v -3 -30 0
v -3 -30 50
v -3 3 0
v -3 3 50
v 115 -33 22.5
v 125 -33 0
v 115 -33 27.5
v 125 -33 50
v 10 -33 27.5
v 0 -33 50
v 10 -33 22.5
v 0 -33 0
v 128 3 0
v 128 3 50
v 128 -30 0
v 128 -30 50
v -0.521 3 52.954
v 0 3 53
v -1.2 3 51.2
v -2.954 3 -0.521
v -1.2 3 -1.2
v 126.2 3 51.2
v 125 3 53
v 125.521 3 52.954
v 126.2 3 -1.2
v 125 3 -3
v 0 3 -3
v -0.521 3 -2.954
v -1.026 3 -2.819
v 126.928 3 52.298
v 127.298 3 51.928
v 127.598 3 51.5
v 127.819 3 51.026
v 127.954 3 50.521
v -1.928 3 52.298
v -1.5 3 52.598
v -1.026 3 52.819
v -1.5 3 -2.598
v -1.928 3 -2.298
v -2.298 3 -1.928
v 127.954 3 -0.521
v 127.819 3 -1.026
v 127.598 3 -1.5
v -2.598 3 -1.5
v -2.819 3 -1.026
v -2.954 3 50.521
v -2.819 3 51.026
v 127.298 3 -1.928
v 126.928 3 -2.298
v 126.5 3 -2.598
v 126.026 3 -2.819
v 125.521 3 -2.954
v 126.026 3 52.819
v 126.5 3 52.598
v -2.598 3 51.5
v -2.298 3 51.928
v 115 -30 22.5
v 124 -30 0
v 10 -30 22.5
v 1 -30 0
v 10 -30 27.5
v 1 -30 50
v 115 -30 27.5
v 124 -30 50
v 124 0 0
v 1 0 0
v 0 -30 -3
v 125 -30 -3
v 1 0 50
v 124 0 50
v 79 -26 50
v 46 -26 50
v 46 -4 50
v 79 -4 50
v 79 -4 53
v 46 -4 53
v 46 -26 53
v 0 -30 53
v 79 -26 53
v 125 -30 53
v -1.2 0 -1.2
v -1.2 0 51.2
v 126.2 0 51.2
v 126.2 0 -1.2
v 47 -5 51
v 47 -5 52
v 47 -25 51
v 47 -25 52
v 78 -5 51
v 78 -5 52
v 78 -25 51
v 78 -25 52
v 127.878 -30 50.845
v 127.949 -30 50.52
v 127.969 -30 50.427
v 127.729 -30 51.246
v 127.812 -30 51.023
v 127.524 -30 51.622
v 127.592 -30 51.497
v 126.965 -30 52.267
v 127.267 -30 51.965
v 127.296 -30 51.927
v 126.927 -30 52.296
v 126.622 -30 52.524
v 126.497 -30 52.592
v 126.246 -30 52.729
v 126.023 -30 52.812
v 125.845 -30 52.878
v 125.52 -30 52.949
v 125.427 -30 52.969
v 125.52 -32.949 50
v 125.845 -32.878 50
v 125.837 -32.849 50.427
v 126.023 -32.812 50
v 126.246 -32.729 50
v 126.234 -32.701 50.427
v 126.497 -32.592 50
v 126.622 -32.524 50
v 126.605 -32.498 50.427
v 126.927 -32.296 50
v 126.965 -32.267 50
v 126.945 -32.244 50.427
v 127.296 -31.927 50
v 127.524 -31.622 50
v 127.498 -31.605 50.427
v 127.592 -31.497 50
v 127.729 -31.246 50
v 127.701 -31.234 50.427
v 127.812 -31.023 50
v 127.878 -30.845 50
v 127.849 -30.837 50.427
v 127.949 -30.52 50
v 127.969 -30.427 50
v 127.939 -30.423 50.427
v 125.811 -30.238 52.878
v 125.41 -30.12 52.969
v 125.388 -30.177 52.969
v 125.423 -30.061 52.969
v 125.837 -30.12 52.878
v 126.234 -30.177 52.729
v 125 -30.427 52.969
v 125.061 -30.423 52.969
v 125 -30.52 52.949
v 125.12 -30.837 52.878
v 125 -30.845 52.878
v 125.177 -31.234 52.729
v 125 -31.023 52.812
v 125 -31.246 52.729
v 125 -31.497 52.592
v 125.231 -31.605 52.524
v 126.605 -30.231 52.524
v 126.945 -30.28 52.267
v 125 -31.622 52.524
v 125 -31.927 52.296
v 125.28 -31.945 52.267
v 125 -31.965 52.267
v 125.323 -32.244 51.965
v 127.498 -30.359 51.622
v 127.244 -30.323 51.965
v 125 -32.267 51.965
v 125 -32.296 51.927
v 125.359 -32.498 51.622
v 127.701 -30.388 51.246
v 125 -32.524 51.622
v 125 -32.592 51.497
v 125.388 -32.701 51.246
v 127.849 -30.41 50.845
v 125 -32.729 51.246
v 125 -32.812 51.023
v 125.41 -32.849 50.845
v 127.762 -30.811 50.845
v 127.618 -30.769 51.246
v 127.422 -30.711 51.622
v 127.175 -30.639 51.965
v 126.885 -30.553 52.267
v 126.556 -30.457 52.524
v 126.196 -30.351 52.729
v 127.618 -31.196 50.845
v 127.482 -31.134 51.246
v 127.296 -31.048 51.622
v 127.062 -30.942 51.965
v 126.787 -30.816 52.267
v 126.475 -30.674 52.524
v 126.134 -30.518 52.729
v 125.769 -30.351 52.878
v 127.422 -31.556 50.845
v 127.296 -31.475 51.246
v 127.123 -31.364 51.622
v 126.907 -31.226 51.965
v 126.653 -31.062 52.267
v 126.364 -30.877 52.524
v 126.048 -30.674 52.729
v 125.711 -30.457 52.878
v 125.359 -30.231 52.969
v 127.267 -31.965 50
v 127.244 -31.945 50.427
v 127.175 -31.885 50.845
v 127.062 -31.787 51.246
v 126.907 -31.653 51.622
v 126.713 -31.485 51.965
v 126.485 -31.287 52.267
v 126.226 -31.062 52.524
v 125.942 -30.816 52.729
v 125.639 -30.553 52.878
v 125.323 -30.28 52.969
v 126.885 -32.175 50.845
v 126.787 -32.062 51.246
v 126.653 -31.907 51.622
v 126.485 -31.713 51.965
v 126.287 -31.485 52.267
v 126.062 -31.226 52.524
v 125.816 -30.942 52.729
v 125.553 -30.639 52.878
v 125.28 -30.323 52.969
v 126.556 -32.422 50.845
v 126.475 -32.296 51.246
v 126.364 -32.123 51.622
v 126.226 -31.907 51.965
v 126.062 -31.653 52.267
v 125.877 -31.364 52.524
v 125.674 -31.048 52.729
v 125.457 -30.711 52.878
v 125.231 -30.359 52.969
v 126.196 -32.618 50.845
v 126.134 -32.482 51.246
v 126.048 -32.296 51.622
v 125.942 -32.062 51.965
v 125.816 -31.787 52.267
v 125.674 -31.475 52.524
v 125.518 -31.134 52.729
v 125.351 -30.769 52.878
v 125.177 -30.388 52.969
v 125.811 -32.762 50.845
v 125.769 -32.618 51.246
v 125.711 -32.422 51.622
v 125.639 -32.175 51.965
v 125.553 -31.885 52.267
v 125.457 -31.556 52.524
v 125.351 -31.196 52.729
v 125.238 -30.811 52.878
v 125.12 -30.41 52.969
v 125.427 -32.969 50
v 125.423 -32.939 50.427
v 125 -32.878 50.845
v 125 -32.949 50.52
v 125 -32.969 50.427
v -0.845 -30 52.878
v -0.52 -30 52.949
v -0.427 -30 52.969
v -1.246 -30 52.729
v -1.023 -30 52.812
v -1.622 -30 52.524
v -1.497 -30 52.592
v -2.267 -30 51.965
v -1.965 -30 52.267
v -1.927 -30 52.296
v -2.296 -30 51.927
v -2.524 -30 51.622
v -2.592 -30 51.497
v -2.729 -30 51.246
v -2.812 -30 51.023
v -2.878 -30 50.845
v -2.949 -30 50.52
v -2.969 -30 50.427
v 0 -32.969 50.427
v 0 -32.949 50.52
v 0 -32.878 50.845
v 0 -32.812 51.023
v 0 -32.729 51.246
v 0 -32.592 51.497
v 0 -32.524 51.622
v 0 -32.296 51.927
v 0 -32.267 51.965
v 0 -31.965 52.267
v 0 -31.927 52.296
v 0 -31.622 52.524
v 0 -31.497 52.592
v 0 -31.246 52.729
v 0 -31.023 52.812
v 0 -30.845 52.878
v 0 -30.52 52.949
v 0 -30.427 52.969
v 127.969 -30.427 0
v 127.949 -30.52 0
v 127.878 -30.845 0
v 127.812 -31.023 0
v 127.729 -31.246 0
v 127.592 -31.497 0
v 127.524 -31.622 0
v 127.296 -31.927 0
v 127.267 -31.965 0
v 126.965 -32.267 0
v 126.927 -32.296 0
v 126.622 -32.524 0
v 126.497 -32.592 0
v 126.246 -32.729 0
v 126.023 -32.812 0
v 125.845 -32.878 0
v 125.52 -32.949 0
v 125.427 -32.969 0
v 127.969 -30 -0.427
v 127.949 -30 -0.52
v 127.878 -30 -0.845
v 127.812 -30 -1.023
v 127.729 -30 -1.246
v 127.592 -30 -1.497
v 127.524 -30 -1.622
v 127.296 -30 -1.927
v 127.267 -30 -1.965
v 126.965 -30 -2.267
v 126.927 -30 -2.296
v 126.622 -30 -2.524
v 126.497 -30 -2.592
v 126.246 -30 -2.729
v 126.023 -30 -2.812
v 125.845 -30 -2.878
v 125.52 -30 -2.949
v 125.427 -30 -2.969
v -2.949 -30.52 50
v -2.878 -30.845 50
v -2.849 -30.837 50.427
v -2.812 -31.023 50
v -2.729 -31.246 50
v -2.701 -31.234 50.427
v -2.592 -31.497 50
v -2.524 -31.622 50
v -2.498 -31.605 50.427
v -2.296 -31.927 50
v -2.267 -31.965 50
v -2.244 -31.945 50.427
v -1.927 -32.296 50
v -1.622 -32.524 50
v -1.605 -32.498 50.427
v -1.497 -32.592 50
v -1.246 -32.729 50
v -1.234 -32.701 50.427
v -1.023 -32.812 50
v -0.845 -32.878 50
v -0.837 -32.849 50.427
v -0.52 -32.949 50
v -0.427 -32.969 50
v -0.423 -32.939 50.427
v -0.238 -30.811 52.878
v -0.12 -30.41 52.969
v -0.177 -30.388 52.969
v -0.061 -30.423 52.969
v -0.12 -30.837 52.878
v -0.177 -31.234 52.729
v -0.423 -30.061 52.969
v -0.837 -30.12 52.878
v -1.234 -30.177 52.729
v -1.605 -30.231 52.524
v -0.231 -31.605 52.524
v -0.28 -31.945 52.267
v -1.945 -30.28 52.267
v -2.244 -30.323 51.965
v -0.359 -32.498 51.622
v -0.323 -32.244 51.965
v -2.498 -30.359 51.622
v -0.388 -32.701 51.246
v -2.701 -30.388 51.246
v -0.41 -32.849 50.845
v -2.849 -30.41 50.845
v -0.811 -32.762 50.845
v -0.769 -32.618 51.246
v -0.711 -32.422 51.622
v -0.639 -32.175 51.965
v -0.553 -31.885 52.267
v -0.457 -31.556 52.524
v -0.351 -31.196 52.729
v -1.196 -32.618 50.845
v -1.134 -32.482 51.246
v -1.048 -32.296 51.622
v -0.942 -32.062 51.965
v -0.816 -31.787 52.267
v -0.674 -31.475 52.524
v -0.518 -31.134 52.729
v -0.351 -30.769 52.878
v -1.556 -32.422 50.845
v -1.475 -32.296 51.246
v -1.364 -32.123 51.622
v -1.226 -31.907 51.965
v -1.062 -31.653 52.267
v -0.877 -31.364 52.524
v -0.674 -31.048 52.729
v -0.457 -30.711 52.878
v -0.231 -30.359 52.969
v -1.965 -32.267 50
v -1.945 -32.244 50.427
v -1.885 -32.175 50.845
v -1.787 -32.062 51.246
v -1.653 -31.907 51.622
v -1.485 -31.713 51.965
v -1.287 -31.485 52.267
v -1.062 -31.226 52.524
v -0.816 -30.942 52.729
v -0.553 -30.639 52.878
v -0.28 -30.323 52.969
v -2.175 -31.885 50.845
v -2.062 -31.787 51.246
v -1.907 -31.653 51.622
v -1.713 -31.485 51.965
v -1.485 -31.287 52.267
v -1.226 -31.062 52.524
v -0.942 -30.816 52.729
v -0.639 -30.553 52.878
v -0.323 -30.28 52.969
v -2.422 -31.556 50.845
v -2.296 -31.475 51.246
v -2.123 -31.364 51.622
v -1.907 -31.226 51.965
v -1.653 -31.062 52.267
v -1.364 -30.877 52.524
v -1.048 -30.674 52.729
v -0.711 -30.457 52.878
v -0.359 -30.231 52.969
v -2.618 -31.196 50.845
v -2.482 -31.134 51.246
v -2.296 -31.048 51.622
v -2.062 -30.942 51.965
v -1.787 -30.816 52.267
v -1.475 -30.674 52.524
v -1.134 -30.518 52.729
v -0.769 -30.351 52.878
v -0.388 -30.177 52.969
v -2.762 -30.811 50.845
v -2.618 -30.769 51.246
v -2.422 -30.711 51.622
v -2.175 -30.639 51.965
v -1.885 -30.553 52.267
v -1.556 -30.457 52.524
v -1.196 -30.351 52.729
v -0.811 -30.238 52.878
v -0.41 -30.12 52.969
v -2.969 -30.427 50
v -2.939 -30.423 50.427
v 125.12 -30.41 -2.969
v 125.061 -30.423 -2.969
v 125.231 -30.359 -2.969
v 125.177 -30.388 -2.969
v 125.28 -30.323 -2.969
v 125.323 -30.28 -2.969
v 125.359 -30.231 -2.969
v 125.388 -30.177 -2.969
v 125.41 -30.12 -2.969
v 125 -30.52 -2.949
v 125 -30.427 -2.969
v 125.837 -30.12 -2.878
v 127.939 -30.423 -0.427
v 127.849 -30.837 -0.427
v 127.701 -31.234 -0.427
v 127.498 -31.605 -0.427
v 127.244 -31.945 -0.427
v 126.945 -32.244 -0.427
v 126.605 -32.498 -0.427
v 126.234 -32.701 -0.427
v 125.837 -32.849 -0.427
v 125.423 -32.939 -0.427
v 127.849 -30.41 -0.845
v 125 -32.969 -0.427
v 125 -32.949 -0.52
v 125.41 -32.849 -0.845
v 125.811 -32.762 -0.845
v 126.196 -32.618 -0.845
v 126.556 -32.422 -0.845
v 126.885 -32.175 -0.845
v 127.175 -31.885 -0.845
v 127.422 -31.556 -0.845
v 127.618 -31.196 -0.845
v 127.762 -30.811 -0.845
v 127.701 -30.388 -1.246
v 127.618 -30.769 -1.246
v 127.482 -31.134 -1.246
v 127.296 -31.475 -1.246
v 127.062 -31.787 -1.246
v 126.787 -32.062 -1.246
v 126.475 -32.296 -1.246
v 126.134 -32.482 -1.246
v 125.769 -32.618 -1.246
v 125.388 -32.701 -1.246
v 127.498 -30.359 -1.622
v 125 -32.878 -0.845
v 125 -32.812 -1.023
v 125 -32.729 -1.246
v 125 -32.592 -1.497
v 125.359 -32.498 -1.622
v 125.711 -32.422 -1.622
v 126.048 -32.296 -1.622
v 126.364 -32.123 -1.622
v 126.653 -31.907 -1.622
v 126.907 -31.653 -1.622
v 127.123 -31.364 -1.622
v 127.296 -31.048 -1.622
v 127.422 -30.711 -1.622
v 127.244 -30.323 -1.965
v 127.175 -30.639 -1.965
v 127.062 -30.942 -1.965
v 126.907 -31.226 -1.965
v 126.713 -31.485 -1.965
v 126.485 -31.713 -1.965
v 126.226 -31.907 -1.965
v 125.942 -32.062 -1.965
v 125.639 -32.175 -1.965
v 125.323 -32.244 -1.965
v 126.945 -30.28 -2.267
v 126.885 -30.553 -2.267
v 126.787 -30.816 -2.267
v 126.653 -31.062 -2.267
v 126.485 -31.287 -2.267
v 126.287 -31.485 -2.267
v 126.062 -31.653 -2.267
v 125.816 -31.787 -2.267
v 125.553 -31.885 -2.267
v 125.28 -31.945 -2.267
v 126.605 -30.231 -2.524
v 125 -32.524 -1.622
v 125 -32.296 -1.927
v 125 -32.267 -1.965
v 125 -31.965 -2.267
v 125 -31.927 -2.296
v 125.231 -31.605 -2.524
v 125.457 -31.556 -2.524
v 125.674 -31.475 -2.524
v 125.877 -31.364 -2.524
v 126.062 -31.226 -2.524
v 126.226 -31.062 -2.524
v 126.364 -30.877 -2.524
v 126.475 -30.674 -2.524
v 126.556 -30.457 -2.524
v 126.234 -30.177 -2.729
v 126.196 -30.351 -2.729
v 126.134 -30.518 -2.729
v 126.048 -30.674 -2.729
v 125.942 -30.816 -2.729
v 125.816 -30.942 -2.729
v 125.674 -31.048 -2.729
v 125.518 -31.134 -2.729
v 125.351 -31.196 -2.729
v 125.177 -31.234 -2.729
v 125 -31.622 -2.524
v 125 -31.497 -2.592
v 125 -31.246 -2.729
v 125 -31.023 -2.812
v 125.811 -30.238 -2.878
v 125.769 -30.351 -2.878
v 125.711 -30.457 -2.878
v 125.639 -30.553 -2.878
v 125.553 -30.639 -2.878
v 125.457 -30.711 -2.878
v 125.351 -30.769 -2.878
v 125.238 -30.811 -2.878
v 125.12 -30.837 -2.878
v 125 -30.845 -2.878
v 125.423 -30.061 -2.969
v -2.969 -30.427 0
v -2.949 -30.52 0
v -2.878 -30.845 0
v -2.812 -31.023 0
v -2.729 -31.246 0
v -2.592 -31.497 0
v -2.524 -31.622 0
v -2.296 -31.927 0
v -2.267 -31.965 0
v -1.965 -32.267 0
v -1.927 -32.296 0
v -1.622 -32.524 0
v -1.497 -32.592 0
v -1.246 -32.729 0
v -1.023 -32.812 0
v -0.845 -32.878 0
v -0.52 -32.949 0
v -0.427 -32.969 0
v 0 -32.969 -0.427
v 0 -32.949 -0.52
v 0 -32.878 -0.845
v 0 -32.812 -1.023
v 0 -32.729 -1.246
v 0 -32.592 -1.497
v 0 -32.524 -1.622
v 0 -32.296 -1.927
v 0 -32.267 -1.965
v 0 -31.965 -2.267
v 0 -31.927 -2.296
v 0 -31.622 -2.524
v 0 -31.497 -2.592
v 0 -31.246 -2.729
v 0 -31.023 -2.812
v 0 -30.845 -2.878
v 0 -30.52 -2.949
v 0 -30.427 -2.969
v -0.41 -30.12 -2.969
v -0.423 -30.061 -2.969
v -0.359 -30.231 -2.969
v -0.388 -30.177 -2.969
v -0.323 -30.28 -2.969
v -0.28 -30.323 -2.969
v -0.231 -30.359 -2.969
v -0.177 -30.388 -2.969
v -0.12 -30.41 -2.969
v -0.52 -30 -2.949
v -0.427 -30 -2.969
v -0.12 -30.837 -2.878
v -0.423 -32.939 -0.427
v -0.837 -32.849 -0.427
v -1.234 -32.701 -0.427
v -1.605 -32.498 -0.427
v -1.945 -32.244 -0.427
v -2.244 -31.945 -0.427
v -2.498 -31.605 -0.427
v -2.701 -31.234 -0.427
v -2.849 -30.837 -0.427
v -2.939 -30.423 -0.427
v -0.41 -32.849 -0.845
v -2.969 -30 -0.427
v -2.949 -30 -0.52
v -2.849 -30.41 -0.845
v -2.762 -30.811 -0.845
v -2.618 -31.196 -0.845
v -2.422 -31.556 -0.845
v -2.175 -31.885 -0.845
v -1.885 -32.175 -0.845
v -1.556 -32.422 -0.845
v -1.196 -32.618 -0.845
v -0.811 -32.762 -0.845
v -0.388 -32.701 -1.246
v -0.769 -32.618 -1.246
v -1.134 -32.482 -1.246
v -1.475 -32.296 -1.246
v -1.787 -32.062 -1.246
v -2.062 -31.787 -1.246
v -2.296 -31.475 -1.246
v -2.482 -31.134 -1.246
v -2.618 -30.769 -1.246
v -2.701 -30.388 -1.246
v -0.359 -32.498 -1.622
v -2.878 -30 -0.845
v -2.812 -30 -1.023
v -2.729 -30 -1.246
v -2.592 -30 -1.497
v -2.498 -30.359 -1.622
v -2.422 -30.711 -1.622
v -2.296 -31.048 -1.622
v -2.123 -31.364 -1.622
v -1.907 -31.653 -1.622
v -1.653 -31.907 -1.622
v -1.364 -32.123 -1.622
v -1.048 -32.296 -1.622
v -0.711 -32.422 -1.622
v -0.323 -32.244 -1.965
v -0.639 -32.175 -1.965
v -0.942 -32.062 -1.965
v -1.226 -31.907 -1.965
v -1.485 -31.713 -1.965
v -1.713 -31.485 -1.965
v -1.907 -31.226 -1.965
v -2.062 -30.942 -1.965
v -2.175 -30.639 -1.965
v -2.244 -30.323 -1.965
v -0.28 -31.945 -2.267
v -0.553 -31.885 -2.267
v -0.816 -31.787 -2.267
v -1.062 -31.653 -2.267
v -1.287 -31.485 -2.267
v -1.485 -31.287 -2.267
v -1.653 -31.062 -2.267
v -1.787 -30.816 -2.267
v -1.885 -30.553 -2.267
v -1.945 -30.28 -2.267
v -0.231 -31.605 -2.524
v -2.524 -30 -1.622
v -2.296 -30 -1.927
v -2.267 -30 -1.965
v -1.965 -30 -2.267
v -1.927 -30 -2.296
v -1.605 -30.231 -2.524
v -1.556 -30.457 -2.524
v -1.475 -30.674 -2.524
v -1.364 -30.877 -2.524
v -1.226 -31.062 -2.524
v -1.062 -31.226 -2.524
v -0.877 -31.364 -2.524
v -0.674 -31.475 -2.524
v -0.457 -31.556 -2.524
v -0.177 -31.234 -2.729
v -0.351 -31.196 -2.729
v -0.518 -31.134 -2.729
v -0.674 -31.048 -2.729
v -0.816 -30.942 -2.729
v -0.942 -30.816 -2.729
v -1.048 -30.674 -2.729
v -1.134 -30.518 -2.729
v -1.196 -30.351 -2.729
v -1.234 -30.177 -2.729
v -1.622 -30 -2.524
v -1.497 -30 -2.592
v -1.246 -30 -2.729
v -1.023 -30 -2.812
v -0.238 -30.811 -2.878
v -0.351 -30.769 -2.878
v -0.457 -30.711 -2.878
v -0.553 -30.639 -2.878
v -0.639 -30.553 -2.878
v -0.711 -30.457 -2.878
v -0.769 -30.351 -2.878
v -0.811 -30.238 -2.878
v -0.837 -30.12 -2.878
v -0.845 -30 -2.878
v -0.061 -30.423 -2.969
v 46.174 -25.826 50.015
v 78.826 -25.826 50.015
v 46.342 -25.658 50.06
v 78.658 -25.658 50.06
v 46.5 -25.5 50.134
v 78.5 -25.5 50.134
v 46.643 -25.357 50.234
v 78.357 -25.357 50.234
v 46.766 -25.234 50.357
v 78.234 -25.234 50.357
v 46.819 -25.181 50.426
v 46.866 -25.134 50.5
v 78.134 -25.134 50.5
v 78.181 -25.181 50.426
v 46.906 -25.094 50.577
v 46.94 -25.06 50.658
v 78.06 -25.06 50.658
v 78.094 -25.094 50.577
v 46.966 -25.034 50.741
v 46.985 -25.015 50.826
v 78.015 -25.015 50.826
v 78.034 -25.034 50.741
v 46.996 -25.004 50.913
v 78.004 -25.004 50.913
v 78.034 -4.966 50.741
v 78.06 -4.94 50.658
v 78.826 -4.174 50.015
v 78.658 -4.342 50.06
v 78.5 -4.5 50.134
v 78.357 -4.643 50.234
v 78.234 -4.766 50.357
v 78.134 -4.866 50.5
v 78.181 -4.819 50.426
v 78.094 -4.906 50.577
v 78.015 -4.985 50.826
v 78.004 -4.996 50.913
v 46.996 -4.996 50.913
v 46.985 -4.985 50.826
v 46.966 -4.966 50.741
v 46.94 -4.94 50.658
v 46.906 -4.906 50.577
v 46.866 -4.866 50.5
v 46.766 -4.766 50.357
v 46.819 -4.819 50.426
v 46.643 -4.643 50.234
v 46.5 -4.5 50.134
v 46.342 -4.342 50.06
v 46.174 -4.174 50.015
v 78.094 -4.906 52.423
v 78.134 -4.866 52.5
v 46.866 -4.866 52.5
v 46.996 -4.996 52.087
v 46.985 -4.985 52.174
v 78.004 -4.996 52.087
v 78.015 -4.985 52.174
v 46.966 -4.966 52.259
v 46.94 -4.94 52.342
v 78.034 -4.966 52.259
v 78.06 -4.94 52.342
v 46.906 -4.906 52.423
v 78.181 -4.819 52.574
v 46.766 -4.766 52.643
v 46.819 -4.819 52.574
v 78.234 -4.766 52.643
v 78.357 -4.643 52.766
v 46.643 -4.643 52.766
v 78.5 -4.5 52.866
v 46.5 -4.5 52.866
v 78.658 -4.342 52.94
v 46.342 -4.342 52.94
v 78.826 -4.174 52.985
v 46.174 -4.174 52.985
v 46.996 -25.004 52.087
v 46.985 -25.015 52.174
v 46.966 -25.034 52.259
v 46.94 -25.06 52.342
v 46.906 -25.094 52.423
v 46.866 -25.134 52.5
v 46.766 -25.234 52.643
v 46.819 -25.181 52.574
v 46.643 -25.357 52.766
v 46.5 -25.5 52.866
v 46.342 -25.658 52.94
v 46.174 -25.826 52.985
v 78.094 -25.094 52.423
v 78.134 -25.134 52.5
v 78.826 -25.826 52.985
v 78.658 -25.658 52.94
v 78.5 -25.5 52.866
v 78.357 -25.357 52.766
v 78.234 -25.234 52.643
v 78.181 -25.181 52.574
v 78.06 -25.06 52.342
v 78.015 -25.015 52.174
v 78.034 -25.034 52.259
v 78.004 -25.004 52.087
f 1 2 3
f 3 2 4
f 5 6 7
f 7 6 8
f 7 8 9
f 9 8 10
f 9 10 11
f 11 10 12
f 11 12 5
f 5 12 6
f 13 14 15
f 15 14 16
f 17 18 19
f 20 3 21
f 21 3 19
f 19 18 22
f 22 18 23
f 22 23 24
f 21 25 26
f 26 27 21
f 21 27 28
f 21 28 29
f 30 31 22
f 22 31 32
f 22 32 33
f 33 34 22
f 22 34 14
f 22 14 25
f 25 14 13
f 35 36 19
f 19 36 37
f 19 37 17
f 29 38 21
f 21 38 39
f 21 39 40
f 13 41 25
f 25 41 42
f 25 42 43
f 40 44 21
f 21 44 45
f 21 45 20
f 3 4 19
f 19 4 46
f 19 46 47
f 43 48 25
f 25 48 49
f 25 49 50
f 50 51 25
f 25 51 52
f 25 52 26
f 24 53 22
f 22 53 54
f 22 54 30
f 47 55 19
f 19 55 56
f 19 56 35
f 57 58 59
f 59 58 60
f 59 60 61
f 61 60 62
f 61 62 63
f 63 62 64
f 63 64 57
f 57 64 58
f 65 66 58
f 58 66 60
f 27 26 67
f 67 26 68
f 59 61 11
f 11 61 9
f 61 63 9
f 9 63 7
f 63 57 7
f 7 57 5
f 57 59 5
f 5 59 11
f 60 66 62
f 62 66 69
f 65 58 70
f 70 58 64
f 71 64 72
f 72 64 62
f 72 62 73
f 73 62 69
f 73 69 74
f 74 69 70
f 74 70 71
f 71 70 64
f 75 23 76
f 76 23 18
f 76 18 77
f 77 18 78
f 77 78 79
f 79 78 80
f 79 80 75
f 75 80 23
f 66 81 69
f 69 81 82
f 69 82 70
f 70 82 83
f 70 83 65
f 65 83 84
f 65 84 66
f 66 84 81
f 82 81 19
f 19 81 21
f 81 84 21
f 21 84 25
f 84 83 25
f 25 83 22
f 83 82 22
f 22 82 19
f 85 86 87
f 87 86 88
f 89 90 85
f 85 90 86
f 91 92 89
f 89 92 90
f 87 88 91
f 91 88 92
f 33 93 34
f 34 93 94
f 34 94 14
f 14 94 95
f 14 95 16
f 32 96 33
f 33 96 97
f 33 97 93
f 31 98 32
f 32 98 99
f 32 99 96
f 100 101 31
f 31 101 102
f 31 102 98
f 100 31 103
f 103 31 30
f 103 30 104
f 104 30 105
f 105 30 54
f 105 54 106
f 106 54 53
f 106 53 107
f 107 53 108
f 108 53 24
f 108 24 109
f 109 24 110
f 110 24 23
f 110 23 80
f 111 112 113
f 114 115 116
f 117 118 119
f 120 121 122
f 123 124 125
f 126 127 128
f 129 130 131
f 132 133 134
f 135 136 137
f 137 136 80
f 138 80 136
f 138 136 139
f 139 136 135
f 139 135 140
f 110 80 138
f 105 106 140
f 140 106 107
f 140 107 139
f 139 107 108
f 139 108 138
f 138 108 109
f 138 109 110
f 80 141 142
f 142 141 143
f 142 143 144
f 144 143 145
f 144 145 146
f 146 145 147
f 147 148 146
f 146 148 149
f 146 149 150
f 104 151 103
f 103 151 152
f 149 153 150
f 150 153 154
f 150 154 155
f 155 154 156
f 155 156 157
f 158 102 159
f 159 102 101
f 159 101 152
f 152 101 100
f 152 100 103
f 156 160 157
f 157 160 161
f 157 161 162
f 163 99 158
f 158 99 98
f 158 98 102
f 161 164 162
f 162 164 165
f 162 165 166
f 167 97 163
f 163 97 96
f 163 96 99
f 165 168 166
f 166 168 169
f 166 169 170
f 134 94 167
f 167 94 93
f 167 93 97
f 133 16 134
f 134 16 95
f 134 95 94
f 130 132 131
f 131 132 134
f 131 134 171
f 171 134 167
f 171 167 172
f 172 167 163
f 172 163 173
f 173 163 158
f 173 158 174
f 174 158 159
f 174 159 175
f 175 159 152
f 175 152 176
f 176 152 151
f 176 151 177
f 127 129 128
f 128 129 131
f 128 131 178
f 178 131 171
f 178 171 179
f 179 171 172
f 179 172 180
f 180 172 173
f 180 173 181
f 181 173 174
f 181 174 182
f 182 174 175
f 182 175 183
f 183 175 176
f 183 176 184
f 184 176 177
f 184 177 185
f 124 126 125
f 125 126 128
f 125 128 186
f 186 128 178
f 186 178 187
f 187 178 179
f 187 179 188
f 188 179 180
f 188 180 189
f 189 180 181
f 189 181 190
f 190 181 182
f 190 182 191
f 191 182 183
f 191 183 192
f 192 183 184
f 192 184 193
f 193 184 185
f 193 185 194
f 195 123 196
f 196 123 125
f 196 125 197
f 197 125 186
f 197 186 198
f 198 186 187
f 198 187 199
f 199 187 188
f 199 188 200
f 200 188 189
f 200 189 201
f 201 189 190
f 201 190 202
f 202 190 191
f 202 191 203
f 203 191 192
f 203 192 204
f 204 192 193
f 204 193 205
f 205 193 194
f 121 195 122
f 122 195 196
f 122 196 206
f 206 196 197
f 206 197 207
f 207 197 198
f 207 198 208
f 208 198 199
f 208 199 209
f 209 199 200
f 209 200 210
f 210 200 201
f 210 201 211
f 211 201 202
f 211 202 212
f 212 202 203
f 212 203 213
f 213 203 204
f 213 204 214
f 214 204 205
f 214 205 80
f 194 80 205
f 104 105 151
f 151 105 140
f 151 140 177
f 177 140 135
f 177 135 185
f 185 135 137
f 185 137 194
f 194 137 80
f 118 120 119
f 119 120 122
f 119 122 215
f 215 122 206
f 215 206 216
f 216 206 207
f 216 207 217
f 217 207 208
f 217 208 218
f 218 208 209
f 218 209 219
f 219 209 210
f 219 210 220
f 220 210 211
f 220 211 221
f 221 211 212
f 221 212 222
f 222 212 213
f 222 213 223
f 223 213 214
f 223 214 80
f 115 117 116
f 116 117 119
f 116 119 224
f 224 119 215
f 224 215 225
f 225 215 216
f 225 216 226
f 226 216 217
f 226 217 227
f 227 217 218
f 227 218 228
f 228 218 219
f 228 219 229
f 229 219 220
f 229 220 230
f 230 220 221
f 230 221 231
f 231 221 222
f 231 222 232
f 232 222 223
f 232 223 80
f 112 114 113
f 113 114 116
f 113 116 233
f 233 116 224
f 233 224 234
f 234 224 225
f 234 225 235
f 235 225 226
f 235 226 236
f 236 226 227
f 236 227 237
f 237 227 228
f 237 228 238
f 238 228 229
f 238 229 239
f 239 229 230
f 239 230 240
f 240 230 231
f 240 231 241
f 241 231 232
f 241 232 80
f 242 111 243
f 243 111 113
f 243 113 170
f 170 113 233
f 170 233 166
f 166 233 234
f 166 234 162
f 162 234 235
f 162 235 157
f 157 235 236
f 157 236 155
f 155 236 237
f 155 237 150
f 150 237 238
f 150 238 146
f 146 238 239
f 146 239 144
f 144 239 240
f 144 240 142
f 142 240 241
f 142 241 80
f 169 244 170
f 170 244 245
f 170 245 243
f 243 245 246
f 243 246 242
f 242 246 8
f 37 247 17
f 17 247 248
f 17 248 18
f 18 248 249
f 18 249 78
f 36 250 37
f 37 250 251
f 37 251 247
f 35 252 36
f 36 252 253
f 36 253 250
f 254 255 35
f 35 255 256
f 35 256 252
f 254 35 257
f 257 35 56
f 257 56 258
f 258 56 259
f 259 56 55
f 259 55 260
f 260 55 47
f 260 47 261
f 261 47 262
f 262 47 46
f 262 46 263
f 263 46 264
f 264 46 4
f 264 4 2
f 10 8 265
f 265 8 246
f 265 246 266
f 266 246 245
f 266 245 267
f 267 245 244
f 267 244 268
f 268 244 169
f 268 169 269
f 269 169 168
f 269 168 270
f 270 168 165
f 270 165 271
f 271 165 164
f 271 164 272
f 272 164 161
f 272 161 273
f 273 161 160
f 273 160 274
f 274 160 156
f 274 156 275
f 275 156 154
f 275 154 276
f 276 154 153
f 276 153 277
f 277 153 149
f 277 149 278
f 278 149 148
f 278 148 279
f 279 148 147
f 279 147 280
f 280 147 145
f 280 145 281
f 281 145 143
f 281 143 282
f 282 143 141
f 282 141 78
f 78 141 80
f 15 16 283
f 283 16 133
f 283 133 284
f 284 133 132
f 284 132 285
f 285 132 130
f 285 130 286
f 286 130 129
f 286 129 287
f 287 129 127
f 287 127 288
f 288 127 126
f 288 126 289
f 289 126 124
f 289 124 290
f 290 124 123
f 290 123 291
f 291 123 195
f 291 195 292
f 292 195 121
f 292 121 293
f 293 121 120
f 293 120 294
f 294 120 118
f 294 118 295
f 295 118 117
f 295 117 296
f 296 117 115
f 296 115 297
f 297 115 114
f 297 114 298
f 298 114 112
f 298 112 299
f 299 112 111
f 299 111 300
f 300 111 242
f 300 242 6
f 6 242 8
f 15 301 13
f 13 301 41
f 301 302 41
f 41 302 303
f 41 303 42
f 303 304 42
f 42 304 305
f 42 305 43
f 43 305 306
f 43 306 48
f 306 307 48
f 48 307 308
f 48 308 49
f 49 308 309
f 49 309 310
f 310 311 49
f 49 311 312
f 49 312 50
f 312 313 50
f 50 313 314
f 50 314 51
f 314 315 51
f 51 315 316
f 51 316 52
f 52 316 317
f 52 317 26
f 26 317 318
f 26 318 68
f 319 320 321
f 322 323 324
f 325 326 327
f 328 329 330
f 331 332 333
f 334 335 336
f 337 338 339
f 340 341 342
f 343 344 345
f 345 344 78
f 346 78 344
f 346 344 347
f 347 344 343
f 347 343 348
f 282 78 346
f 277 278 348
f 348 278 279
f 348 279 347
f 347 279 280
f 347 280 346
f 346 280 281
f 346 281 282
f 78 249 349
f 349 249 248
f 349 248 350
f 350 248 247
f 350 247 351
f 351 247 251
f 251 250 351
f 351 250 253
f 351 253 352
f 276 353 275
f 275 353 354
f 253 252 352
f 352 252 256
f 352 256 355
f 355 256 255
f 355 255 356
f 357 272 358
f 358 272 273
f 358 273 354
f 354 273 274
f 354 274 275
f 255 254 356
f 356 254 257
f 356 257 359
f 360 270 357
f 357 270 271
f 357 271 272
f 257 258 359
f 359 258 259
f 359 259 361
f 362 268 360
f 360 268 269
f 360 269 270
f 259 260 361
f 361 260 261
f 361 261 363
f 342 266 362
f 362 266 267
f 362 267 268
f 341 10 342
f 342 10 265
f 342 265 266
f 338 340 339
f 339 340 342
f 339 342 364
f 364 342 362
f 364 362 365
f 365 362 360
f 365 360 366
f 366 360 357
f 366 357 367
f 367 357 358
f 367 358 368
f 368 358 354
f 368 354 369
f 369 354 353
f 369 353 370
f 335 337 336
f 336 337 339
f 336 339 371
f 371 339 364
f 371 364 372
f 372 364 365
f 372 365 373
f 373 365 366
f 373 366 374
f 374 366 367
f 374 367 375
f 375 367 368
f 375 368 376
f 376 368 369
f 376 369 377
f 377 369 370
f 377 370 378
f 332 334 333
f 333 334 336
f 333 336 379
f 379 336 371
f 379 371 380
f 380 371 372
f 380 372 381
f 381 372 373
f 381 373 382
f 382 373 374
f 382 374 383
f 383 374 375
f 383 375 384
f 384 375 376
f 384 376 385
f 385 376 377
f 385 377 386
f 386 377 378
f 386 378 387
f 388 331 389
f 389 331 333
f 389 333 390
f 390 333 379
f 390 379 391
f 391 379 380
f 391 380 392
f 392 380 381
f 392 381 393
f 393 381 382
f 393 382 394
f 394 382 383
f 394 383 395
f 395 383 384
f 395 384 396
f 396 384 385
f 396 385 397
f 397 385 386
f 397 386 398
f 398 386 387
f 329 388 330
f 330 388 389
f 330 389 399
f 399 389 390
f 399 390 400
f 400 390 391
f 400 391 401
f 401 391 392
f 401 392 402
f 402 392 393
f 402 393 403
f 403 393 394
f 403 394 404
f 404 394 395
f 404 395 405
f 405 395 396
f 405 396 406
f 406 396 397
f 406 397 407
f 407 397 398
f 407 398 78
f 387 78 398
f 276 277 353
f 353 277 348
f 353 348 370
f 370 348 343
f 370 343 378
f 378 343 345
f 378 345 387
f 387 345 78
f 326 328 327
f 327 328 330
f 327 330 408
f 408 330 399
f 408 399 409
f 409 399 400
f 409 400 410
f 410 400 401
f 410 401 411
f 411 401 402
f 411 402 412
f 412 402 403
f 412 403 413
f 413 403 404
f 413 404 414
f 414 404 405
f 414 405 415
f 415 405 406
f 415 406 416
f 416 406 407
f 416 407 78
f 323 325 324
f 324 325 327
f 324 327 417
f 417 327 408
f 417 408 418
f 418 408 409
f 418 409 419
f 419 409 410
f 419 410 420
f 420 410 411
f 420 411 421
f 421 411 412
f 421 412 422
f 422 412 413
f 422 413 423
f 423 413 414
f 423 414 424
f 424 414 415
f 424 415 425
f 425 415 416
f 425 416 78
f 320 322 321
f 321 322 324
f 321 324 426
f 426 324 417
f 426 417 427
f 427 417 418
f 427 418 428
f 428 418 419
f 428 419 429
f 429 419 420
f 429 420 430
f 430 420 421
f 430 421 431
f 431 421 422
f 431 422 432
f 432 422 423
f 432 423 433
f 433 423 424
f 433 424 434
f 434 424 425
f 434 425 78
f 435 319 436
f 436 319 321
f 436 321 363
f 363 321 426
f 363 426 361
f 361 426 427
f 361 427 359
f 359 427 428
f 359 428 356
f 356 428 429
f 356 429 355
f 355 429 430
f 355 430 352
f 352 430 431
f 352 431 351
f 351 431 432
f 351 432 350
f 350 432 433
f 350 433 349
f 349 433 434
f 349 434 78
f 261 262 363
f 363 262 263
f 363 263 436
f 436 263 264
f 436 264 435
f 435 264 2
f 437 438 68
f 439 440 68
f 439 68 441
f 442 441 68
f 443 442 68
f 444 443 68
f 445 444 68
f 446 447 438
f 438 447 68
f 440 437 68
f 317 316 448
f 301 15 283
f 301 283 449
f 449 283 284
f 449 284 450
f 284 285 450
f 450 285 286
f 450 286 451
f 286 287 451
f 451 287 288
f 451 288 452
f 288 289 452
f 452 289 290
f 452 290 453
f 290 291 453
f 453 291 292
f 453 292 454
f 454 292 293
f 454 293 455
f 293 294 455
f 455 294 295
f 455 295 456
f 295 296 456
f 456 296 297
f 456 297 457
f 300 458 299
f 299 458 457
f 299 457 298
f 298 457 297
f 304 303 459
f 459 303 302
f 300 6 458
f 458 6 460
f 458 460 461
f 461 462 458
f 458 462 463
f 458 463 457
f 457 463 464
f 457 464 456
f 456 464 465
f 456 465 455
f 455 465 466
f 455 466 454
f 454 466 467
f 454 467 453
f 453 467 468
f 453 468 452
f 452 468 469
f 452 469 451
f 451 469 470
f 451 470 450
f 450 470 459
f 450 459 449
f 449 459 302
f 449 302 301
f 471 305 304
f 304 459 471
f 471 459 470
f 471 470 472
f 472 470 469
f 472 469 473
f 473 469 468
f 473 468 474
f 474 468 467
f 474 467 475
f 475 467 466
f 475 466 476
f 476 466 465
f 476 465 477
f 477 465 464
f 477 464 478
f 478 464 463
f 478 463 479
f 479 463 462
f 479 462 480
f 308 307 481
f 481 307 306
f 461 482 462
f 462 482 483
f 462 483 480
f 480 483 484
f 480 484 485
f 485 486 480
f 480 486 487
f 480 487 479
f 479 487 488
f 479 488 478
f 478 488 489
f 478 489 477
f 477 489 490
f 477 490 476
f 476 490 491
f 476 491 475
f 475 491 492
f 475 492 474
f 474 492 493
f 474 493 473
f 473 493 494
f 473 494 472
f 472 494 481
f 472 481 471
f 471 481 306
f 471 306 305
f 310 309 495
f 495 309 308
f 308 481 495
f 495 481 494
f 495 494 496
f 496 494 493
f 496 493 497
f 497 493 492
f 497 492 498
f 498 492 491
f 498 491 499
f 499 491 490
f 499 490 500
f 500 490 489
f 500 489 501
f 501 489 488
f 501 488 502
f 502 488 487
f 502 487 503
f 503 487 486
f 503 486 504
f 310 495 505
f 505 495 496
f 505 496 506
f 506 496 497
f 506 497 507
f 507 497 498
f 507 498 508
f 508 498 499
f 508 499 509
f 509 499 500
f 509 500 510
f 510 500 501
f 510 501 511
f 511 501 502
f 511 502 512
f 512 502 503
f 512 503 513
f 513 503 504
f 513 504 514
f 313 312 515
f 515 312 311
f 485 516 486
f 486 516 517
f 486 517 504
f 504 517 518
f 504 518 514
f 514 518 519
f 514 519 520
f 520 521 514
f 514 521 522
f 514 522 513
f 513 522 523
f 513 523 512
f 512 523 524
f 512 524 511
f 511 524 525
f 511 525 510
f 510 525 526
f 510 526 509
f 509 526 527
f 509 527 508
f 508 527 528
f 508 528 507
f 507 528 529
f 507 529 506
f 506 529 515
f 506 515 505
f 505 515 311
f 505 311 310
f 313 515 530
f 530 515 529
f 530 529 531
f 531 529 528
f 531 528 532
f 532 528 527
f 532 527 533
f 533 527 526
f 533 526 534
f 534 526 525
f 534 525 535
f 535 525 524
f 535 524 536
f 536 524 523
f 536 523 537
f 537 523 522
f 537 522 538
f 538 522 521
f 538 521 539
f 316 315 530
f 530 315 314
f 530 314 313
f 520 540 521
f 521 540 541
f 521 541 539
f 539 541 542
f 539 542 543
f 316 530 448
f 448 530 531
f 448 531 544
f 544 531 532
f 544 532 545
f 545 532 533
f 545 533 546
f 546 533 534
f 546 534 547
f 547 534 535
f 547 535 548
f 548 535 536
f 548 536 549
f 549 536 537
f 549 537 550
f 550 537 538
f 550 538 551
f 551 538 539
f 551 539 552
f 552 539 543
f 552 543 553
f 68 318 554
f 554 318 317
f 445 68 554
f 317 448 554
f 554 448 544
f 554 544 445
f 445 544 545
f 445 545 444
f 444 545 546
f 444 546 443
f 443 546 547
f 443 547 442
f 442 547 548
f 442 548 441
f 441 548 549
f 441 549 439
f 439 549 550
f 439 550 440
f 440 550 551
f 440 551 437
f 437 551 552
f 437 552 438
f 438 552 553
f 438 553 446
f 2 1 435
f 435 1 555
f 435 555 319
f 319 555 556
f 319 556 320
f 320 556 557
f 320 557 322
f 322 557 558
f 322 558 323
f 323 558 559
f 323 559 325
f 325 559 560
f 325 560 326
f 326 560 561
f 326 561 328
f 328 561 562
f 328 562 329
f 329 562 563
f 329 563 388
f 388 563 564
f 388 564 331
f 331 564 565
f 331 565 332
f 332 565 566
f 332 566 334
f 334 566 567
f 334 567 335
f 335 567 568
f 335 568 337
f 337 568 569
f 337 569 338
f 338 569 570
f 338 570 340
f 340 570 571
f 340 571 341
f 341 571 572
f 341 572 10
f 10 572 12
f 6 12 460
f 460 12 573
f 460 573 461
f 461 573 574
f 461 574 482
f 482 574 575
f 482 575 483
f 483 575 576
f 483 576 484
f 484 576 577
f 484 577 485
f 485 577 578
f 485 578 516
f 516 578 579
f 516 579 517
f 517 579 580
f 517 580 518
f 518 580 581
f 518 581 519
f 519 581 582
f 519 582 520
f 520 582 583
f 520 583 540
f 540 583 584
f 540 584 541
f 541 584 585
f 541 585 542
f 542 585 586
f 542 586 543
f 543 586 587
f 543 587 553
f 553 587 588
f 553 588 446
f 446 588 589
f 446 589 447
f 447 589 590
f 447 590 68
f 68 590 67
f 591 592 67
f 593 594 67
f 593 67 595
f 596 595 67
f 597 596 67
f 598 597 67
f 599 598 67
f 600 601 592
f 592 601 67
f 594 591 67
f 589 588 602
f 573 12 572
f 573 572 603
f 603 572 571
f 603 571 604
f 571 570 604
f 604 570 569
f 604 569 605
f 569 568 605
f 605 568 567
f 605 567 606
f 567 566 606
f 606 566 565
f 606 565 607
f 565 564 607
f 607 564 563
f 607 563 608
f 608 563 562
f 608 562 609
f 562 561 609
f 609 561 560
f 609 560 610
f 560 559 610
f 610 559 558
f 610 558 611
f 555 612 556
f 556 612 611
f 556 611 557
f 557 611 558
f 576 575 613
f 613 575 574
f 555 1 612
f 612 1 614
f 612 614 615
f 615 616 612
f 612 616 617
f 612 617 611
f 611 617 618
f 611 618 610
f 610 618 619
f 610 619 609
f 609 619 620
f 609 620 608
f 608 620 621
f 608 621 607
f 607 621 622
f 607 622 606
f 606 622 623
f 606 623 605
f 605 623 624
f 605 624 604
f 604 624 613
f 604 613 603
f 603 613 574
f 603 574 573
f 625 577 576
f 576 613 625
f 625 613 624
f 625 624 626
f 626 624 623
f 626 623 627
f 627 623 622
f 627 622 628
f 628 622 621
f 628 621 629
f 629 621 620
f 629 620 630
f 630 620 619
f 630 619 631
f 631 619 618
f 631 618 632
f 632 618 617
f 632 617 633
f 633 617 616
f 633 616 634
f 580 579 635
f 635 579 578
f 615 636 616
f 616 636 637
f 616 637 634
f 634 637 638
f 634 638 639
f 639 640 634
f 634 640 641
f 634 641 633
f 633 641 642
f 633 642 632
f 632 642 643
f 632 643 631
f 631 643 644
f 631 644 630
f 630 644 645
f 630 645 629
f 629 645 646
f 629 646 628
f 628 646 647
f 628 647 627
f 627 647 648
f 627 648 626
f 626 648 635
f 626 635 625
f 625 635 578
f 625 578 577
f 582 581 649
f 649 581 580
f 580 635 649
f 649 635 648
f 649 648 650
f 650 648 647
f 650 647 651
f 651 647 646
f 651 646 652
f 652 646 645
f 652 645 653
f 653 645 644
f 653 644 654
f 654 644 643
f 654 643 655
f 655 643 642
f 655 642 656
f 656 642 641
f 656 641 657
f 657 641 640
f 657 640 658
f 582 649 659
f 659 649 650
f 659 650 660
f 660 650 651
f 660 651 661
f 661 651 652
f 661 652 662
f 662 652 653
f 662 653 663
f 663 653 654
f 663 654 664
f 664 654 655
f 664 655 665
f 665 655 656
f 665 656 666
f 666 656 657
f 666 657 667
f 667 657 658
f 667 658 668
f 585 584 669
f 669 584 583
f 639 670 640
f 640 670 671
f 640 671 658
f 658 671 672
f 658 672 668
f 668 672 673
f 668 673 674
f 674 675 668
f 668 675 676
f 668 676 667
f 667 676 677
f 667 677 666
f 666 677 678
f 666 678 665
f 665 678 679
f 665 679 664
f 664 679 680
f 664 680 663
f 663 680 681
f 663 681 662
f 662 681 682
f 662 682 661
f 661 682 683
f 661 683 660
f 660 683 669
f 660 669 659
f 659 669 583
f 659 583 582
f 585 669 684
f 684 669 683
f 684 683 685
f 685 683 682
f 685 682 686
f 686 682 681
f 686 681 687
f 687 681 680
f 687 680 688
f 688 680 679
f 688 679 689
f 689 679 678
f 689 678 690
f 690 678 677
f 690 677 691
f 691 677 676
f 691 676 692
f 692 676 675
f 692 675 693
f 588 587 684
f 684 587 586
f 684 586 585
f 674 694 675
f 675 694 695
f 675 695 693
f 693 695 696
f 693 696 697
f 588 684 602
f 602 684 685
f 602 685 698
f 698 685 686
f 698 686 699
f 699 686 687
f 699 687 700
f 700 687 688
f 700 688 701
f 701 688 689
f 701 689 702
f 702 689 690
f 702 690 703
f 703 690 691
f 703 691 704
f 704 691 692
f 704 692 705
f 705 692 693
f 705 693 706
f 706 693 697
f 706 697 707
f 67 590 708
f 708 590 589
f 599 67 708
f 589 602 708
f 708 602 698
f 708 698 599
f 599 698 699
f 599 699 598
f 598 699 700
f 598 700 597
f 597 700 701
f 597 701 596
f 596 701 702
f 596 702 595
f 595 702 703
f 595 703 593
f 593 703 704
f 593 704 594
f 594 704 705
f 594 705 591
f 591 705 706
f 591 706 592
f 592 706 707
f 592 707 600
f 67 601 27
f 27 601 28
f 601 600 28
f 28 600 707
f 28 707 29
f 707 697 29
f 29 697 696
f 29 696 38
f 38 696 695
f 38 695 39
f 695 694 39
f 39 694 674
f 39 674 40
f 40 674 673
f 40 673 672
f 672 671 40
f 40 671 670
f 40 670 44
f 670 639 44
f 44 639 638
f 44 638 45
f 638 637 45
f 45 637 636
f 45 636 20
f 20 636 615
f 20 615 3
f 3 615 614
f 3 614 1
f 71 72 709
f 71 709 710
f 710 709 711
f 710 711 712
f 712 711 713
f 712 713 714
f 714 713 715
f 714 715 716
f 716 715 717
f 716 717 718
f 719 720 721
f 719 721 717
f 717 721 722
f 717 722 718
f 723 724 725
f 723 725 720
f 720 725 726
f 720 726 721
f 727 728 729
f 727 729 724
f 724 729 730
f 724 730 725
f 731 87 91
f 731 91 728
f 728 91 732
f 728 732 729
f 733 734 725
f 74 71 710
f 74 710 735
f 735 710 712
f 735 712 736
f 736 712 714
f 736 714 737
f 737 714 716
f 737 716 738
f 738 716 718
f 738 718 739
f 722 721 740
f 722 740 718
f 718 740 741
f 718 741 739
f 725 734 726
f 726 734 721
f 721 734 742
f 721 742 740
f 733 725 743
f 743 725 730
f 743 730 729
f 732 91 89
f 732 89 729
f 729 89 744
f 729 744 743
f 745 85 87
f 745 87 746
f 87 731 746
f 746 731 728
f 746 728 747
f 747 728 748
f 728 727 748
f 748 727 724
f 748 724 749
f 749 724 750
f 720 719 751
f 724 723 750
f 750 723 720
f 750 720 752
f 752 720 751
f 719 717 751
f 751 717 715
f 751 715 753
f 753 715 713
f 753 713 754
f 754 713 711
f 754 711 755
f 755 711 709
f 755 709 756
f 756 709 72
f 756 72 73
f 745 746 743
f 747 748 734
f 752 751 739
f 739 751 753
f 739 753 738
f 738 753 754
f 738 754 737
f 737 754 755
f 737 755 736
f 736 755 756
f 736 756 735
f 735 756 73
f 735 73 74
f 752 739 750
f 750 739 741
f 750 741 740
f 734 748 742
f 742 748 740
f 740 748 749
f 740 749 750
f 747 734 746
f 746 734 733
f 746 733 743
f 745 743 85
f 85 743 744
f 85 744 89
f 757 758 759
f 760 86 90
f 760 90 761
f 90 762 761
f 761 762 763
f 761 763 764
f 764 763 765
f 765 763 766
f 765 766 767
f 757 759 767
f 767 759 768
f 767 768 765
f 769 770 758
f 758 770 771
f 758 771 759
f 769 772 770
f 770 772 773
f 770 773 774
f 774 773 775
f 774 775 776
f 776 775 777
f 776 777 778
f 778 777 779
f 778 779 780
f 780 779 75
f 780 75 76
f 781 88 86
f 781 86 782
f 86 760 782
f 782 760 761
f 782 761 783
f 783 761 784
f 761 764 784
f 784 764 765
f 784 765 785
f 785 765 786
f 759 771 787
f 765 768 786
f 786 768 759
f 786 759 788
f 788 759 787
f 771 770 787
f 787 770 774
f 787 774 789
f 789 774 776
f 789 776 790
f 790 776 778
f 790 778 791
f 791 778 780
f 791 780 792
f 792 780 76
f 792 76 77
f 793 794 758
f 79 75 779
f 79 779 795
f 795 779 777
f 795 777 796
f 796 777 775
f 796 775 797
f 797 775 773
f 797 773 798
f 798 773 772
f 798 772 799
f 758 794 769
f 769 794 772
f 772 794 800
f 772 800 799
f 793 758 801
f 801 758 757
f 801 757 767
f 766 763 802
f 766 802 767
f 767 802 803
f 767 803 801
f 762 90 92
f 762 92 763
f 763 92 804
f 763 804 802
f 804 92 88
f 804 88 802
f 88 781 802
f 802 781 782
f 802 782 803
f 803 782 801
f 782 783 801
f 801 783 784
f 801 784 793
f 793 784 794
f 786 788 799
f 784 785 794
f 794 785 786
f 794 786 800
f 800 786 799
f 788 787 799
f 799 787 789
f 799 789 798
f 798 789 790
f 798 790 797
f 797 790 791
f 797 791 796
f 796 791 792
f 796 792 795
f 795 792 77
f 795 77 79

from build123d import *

# Parameters (mm, degrees)
SKETCH_1_W          = 131
SKETCH_1_H          = 36
SKETCH_1_W_2        = 125
SKETCH_1_H_2        = 30
EXTRUDE_3_DEPTH     = 50
SKETCH_4_W          = 131
SKETCH_4_H          = 36
EXTRUDE_4_DEPTH     = 3
SKETCH_5_R          = 7.5
CUT_EXTRUDE_1_DEPTH = 3
CUT_EXTRUDE_2_DEPTH = 3
SKETCH_11_W         = 1
SKETCH_11_H         = 30
EXTRUDE_6_DEPTH     = 50
SKETCH_8_W          = 131
SKETCH_8_H          = 36
EXTRUDE_7_DEPTH     = 3
SKETCH_12_W         = 127.4
SKETCH_12_H         = 52.4
CUT_EXTRUDE_4_DEPTH = 3
CUT_EXTRUDE_5_DEPTH = 3
FILLET_5_R          = 3
FILLET_6_R          = 1


with BuildPart() as part:
    # 草图1 → 凸台-拉伸3 (new body)
    with BuildSketch(Plane.XY):
        with Locations((62.5, -15)):
            Rectangle(SKETCH_1_W, SKETCH_1_H)
        with Locations((62.5, -15)):
            Rectangle(SKETCH_1_W_2, SKETCH_1_H_2, mode=Mode.SUBTRACT)
    extrude(amount=EXTRUDE_3_DEPTH)

    # 草图4 → 凸台-拉伸4 (add)
    with BuildSketch(Plane(origin=(0, 0, 0), x_dir=(-1, 0, 0), z_dir=(0, 0, -1))):
        with Locations((-62.5, -15)):
            Rectangle(SKETCH_4_W, SKETCH_4_H)
    extrude(amount=EXTRUDE_4_DEPTH)

    # 草图5 → 切除-拉伸1 (cut)
    with BuildSketch(Plane(origin=(0, 3, 0), x_dir=(1, 0, 0), z_dir=(0, 1, 0))):
        with Locations(Location((17.5, -30, 0), (0, 0, 270))):
            Circle(SKETCH_5_R)
        with Locations(Location((47.5, -30, 0), (0, 0, 270))):
            Circle(SKETCH_5_R)
        with Locations(Location((77.5, -30, 0), (0, 0, 270))):
            Circle(SKETCH_5_R)
        with Locations(Location((107.5, -30, 0), (0, 0, 270))):
            Circle(SKETCH_5_R)
    extrude(amount=-CUT_EXTRUDE_1_DEPTH, mode=Mode.SUBTRACT)

    # 草图6 → 切除-拉伸2 (cut)
    with BuildSketch(Plane.XZ.offset(33)):
        Polygon((10, 25), (10, 27.5), (115, 27.5), (115, 25), (115, 22.5), (10, 22.5), align=None)
    extrude(amount=-CUT_EXTRUDE_2_DEPTH, mode=Mode.SUBTRACT)

    # 草图11 → 凸台-拉伸6 (add)
    with BuildSketch(Plane.XY.offset(50)):
        with Locations((0.5, -15)):
            Rectangle(SKETCH_11_W, SKETCH_11_H)
        with Locations((124.5, -15)):
            Rectangle(SKETCH_11_W, SKETCH_11_H)
    extrude(amount=-EXTRUDE_6_DEPTH)

    # 草图8 → 凸台-拉伸7 (add)
    with BuildSketch(Plane.XY.offset(50)):
        with Locations((62.5, -15)):
            Rectangle(SKETCH_8_W, SKETCH_8_H)
    extrude(amount=EXTRUDE_7_DEPTH)

    # 草图12 → 切除-拉伸4 (cut)
    with BuildSketch(Plane(origin=(0, 3, 0), x_dir=(1, 0, 0), z_dir=(0, 1, 0))):
        with Locations((62.5, -25)):
            Rectangle(SKETCH_12_W, SKETCH_12_H)
    extrude(amount=-CUT_EXTRUDE_4_DEPTH, mode=Mode.SUBTRACT)

    # 草图13 → 切除-拉伸5 (cut)
    with BuildSketch(Plane.XY.offset(53)):
        Polygon((47, -15), (47, -5), (78, -5), (78, -25), (47, -25), align=None)
    extrude(amount=-CUT_EXTRUDE_5_DEPTH, mode=Mode.SUBTRACT)

    # 圆角5
    fillet_5_edges = [part.edges().sort_by_distance(p)[0] for p in [
        (-3, -15, 53),
        (62.5, -33, 53),
        (128, -15, 53),
        (128, -15, -3),
        (62.5, -33, -3),
        (-3, -15, -3),
        (128, -33, 25),
        (-3, -33, 25),
    ]]
    fillet(fillet_5_edges, radius=FILLET_5_R)

    # 圆角6
    fillet_6_edges = [part.edges().sort_by_distance(p)[0] for p in [
        (47, -15, 50),
        (62.5, -5, 50),
        (78, -15, 50),
        (62.5, -25, 50),
        (47, -15, 53),
        (62.5, -25, 53),
        (78, -15, 53),
        (62.5, -5, 53),
    ]]
    fillet(fillet_6_edges, radius=FILLET_6_R)


solid = part.part
